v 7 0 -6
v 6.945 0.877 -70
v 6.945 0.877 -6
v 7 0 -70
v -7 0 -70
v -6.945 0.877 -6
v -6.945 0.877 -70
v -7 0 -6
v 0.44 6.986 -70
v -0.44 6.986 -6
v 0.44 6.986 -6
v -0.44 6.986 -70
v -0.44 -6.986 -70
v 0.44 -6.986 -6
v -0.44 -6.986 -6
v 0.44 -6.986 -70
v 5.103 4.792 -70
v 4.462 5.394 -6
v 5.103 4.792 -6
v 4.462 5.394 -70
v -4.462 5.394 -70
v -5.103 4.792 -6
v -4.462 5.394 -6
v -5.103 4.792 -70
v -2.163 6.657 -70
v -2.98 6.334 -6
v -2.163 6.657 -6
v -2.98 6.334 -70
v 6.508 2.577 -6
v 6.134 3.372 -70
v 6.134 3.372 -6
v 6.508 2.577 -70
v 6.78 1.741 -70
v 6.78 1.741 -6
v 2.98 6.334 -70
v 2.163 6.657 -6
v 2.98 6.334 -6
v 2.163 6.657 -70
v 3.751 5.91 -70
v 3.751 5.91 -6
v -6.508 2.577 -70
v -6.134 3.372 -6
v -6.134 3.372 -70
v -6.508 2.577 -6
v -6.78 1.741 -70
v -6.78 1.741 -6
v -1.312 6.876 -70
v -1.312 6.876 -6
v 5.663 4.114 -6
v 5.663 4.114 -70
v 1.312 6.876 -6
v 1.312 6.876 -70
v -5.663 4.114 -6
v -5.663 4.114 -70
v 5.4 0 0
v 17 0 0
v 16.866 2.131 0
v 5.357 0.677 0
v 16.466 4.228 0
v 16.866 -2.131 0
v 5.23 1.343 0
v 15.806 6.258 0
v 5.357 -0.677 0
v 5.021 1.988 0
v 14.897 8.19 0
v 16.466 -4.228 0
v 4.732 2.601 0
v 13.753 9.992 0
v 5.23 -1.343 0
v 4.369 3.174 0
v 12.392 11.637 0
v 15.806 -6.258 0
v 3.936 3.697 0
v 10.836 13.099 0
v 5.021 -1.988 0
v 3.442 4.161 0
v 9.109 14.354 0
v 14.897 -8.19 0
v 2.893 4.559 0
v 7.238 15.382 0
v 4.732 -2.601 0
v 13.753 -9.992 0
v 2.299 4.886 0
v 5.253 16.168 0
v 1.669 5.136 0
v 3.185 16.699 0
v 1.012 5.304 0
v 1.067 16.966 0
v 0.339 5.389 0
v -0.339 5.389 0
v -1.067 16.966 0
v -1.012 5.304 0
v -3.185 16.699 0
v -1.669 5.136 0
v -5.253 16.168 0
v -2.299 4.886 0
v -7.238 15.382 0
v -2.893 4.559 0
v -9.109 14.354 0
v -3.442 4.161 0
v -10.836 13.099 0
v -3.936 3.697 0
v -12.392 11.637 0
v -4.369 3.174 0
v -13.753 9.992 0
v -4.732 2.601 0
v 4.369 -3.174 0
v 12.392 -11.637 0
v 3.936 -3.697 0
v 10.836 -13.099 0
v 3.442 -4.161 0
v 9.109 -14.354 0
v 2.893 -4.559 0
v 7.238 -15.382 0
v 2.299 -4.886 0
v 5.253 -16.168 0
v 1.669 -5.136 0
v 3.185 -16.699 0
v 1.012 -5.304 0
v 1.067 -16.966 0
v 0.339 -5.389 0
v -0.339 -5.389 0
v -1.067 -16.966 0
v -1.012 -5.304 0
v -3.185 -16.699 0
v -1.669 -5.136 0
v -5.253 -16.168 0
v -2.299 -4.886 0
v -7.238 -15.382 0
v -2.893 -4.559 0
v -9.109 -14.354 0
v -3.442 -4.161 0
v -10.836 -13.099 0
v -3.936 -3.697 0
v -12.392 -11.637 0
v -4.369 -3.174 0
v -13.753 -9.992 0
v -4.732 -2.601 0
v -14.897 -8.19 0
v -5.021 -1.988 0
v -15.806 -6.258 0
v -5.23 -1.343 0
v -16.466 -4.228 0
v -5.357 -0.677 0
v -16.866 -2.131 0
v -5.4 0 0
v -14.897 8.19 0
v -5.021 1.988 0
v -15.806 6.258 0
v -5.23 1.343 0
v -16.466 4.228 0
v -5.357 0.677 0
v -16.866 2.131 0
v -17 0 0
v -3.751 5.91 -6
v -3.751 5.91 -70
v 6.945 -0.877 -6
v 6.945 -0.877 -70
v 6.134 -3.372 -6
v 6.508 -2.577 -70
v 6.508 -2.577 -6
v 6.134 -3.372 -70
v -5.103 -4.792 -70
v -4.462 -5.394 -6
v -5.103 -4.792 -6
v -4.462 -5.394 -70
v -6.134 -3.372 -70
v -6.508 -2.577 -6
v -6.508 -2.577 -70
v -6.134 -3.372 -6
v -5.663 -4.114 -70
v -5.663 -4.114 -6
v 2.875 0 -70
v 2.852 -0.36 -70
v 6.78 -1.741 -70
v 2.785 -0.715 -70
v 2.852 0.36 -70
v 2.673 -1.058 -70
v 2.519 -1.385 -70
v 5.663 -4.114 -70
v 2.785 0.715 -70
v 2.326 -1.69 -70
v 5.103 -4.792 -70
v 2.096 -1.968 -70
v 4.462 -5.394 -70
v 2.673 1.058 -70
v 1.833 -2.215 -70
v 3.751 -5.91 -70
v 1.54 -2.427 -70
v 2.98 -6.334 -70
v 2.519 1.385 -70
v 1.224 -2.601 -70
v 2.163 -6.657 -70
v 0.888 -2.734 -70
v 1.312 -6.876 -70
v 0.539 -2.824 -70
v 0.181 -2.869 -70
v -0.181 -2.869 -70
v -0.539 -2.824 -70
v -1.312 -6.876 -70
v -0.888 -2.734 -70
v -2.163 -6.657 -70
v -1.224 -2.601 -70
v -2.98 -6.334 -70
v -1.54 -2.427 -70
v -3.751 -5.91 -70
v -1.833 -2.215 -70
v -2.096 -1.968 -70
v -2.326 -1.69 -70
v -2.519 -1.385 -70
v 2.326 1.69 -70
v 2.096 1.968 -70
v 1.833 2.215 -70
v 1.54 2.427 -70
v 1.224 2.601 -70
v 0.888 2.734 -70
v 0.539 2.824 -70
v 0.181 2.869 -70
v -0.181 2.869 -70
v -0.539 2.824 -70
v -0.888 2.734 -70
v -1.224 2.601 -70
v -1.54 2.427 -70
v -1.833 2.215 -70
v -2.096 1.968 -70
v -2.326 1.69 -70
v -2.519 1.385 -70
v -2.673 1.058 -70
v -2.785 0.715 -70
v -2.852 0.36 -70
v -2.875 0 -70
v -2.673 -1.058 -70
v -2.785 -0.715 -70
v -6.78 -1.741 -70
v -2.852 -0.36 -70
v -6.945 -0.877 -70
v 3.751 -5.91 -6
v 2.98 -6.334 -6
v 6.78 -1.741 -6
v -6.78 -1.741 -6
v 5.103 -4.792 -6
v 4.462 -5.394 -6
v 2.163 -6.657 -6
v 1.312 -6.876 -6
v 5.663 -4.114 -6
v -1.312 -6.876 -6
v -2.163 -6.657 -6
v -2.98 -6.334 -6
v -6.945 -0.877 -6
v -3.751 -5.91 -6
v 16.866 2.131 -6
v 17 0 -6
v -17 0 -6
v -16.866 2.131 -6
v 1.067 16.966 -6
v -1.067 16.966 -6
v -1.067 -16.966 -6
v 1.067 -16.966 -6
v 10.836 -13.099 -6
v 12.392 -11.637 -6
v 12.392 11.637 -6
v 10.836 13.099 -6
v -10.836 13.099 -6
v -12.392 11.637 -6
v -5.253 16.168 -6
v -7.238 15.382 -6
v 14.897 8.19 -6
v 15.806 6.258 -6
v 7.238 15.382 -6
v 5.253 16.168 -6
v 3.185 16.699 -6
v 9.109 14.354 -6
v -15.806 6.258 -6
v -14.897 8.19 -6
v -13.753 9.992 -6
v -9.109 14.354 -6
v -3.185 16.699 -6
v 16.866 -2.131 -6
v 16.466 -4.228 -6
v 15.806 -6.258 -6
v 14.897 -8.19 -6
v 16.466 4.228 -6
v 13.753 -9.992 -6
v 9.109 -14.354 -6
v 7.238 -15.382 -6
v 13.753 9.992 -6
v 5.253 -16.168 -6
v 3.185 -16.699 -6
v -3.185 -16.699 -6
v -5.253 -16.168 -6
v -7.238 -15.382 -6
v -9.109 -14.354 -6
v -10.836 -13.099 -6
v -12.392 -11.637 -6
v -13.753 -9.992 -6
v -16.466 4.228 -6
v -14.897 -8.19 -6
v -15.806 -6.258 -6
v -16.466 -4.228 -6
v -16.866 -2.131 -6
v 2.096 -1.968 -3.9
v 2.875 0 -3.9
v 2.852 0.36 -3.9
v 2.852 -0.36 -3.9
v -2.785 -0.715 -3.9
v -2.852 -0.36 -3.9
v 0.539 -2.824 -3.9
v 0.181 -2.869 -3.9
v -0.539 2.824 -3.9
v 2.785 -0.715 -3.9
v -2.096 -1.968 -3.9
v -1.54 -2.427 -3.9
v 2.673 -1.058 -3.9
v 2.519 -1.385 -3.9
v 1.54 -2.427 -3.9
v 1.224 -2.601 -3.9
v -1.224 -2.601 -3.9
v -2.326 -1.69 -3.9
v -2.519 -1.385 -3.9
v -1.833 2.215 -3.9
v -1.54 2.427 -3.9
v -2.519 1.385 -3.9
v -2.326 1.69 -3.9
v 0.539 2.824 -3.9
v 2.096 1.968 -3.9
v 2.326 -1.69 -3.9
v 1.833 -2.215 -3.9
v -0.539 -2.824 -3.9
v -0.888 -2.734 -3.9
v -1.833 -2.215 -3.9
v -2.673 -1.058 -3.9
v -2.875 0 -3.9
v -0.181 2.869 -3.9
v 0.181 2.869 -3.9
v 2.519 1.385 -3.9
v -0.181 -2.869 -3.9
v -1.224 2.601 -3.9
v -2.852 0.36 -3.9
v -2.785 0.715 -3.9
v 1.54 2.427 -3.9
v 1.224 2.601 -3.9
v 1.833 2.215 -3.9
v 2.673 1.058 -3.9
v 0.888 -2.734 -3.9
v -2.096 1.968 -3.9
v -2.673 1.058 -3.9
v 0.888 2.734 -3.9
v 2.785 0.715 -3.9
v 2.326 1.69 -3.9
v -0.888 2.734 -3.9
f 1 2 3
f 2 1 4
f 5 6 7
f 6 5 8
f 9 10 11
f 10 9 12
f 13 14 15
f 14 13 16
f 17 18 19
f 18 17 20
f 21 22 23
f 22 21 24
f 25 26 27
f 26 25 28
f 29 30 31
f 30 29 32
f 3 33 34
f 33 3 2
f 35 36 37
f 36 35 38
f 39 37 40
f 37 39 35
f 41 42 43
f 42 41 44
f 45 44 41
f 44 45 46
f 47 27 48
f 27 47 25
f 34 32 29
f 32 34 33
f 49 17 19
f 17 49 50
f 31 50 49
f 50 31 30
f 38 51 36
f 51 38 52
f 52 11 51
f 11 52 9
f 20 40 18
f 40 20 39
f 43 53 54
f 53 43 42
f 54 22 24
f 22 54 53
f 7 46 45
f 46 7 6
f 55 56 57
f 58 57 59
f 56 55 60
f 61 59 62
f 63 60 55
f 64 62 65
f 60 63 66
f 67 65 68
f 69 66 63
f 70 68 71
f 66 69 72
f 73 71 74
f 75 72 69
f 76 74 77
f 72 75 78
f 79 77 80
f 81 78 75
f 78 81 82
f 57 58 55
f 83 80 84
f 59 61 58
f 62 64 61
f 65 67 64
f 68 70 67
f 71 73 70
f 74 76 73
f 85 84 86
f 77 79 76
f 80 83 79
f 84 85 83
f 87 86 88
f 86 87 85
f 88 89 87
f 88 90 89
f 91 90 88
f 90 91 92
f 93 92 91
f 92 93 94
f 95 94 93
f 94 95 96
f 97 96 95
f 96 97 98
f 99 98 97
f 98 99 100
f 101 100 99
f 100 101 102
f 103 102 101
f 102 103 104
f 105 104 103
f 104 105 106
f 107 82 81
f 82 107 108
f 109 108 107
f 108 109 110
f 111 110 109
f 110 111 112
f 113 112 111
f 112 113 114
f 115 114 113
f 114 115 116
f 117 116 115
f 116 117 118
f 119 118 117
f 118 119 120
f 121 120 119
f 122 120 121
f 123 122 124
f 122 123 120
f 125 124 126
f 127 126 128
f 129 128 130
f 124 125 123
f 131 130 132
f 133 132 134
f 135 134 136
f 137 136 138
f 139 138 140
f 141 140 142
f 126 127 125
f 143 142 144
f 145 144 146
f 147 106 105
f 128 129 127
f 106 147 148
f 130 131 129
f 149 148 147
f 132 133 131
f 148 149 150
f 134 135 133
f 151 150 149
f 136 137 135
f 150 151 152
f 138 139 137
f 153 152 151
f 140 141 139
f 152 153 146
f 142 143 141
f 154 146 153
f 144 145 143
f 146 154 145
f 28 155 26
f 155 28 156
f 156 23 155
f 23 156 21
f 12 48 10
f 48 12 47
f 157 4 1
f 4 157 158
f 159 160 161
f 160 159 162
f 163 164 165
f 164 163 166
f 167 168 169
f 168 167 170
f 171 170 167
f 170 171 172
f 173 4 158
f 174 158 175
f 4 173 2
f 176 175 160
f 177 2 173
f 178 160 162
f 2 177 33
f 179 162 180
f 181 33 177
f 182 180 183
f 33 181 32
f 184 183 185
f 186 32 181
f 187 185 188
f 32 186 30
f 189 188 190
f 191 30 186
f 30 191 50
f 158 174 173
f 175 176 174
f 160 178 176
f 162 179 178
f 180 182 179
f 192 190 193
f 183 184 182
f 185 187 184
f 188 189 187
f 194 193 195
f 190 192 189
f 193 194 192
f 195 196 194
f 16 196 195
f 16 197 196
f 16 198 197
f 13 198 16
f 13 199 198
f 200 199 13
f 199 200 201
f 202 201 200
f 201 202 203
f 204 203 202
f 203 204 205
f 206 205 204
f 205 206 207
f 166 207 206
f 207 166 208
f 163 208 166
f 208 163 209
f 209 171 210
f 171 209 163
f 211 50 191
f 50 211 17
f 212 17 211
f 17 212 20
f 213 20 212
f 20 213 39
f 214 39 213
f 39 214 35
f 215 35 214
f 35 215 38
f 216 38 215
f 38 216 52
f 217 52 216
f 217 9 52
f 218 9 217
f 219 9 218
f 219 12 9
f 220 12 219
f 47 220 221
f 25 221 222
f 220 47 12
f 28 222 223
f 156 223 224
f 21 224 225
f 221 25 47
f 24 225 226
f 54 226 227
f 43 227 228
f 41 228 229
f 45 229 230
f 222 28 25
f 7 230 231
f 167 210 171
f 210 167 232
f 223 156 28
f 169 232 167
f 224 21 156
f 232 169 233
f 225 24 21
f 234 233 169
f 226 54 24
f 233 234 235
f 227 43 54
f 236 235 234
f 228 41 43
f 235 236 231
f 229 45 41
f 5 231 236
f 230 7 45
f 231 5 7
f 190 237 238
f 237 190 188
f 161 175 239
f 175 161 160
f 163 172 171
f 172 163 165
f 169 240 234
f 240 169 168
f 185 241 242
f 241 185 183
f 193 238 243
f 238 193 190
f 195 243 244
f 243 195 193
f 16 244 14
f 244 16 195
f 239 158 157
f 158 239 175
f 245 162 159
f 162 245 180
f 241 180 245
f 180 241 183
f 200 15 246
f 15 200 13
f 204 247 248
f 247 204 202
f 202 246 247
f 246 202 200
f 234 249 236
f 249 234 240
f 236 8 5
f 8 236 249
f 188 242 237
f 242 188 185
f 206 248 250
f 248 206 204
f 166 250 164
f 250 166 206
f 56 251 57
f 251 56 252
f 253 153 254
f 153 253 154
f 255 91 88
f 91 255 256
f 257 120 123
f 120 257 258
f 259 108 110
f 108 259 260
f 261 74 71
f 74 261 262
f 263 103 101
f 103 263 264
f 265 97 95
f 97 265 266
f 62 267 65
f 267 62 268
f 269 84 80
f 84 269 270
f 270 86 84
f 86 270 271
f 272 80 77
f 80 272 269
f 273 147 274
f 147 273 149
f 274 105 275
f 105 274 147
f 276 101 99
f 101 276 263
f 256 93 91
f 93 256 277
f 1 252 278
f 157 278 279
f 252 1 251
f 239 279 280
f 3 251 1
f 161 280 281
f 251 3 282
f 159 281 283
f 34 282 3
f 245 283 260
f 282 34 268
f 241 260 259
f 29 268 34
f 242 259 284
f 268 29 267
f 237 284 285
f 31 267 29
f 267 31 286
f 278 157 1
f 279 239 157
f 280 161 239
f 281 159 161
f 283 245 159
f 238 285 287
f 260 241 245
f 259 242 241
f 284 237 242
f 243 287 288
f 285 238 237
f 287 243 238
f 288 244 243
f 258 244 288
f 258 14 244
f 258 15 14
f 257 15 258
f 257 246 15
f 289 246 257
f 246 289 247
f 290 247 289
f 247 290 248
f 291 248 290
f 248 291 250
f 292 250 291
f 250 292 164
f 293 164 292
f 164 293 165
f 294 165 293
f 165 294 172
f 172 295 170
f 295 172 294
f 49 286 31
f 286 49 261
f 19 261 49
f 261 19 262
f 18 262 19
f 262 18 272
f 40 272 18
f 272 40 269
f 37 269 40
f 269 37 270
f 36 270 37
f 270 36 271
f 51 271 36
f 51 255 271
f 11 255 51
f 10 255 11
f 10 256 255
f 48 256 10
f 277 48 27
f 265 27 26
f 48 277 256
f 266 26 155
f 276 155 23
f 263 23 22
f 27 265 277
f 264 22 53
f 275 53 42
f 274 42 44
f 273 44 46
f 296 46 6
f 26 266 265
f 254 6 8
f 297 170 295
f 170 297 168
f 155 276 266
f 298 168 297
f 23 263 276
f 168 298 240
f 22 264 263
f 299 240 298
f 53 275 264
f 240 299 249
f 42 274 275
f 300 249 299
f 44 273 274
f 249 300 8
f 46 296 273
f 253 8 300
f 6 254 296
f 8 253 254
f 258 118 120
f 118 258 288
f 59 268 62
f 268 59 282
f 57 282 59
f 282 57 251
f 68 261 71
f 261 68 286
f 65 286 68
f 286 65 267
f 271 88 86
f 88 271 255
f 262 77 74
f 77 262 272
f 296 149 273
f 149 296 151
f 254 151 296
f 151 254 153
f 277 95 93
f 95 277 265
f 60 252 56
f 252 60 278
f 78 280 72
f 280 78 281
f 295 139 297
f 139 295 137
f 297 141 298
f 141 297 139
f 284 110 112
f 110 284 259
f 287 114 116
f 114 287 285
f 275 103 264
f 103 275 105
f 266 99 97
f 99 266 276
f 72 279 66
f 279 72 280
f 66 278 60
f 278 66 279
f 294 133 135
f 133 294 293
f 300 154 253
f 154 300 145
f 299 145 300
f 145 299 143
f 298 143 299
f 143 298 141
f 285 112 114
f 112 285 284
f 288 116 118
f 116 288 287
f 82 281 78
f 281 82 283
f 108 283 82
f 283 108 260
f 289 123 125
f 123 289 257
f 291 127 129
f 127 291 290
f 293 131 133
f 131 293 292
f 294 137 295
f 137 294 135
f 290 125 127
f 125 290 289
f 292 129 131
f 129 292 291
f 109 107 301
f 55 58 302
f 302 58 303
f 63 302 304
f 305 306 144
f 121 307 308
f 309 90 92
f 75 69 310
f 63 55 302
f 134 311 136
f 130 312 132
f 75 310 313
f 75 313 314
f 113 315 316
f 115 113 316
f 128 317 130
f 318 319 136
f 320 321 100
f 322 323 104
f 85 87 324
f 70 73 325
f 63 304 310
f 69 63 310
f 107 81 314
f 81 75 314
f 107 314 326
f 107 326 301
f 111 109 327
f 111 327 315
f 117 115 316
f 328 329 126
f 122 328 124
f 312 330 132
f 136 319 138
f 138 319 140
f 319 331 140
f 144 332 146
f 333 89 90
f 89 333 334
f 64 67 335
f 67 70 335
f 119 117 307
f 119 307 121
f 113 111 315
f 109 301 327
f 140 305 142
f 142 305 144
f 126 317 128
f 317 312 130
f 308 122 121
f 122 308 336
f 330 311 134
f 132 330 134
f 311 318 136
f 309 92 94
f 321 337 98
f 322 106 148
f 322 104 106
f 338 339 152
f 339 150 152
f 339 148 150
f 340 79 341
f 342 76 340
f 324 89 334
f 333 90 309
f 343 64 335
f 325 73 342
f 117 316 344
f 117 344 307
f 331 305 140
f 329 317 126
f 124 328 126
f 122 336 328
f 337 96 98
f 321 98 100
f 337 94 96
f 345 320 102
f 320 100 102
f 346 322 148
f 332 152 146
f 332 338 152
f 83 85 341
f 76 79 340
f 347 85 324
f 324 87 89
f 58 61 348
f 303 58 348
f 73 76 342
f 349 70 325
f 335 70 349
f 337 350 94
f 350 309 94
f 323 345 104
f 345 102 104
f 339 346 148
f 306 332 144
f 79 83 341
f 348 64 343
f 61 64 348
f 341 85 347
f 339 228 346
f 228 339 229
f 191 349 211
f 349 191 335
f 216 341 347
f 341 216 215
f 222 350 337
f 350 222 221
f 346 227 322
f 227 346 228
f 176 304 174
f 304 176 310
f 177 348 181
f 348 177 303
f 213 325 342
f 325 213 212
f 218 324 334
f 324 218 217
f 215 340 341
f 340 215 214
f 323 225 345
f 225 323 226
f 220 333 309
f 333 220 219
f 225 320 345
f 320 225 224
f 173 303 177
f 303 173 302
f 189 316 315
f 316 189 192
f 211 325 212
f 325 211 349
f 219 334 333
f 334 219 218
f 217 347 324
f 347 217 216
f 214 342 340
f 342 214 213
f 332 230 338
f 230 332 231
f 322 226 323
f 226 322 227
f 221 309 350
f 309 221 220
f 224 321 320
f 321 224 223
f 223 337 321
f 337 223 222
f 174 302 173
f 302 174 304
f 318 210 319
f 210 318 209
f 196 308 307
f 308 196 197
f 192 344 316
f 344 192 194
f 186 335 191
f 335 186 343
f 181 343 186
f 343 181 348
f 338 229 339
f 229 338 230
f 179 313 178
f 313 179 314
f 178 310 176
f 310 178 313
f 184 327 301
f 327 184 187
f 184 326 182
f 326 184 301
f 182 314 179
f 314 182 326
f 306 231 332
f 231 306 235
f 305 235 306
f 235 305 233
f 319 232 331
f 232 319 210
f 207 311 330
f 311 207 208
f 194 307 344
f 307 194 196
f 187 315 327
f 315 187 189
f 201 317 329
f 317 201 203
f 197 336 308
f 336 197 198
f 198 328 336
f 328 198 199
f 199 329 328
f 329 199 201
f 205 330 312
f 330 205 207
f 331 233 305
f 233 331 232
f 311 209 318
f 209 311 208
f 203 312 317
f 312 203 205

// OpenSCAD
$fn = 50;


difference() {
	union() {
		translate(v = [0, 0, -70.0000000000]) {
			cylinder(h = 70, r = 7.0000000000);
		}
		translate(v = [0, 0, -6.0000000000]) {
			cylinder(h = 6, r = 17.0000000000);
		}
	}
	union() {
		translate(v = [0, 0, 0]) {
			rotate(a = [0, 0, 0]) {
				difference() {
					union() {
						#translate(v = [0, 0, -70.0000000000]) {
							cylinder(h = 70, r = 2.6000000000);
						}
						#translate(v = [0, 0, -3.9000000000]) {
							cylinder(h = 3.9000000000, r1 = 2.8750000000, r2 = 5.4000000000);
						}
						#translate(v = [0, 0, -70.0000000000]) {
							cylinder(h = 70, r = 2.8750000000);
						}
						#translate(v = [0, 0, -70.0000000000]) {
							cylinder(h = 70, r = 2.6000000000);
						}
					}
					union();
				}
			}
		}
	}
}
